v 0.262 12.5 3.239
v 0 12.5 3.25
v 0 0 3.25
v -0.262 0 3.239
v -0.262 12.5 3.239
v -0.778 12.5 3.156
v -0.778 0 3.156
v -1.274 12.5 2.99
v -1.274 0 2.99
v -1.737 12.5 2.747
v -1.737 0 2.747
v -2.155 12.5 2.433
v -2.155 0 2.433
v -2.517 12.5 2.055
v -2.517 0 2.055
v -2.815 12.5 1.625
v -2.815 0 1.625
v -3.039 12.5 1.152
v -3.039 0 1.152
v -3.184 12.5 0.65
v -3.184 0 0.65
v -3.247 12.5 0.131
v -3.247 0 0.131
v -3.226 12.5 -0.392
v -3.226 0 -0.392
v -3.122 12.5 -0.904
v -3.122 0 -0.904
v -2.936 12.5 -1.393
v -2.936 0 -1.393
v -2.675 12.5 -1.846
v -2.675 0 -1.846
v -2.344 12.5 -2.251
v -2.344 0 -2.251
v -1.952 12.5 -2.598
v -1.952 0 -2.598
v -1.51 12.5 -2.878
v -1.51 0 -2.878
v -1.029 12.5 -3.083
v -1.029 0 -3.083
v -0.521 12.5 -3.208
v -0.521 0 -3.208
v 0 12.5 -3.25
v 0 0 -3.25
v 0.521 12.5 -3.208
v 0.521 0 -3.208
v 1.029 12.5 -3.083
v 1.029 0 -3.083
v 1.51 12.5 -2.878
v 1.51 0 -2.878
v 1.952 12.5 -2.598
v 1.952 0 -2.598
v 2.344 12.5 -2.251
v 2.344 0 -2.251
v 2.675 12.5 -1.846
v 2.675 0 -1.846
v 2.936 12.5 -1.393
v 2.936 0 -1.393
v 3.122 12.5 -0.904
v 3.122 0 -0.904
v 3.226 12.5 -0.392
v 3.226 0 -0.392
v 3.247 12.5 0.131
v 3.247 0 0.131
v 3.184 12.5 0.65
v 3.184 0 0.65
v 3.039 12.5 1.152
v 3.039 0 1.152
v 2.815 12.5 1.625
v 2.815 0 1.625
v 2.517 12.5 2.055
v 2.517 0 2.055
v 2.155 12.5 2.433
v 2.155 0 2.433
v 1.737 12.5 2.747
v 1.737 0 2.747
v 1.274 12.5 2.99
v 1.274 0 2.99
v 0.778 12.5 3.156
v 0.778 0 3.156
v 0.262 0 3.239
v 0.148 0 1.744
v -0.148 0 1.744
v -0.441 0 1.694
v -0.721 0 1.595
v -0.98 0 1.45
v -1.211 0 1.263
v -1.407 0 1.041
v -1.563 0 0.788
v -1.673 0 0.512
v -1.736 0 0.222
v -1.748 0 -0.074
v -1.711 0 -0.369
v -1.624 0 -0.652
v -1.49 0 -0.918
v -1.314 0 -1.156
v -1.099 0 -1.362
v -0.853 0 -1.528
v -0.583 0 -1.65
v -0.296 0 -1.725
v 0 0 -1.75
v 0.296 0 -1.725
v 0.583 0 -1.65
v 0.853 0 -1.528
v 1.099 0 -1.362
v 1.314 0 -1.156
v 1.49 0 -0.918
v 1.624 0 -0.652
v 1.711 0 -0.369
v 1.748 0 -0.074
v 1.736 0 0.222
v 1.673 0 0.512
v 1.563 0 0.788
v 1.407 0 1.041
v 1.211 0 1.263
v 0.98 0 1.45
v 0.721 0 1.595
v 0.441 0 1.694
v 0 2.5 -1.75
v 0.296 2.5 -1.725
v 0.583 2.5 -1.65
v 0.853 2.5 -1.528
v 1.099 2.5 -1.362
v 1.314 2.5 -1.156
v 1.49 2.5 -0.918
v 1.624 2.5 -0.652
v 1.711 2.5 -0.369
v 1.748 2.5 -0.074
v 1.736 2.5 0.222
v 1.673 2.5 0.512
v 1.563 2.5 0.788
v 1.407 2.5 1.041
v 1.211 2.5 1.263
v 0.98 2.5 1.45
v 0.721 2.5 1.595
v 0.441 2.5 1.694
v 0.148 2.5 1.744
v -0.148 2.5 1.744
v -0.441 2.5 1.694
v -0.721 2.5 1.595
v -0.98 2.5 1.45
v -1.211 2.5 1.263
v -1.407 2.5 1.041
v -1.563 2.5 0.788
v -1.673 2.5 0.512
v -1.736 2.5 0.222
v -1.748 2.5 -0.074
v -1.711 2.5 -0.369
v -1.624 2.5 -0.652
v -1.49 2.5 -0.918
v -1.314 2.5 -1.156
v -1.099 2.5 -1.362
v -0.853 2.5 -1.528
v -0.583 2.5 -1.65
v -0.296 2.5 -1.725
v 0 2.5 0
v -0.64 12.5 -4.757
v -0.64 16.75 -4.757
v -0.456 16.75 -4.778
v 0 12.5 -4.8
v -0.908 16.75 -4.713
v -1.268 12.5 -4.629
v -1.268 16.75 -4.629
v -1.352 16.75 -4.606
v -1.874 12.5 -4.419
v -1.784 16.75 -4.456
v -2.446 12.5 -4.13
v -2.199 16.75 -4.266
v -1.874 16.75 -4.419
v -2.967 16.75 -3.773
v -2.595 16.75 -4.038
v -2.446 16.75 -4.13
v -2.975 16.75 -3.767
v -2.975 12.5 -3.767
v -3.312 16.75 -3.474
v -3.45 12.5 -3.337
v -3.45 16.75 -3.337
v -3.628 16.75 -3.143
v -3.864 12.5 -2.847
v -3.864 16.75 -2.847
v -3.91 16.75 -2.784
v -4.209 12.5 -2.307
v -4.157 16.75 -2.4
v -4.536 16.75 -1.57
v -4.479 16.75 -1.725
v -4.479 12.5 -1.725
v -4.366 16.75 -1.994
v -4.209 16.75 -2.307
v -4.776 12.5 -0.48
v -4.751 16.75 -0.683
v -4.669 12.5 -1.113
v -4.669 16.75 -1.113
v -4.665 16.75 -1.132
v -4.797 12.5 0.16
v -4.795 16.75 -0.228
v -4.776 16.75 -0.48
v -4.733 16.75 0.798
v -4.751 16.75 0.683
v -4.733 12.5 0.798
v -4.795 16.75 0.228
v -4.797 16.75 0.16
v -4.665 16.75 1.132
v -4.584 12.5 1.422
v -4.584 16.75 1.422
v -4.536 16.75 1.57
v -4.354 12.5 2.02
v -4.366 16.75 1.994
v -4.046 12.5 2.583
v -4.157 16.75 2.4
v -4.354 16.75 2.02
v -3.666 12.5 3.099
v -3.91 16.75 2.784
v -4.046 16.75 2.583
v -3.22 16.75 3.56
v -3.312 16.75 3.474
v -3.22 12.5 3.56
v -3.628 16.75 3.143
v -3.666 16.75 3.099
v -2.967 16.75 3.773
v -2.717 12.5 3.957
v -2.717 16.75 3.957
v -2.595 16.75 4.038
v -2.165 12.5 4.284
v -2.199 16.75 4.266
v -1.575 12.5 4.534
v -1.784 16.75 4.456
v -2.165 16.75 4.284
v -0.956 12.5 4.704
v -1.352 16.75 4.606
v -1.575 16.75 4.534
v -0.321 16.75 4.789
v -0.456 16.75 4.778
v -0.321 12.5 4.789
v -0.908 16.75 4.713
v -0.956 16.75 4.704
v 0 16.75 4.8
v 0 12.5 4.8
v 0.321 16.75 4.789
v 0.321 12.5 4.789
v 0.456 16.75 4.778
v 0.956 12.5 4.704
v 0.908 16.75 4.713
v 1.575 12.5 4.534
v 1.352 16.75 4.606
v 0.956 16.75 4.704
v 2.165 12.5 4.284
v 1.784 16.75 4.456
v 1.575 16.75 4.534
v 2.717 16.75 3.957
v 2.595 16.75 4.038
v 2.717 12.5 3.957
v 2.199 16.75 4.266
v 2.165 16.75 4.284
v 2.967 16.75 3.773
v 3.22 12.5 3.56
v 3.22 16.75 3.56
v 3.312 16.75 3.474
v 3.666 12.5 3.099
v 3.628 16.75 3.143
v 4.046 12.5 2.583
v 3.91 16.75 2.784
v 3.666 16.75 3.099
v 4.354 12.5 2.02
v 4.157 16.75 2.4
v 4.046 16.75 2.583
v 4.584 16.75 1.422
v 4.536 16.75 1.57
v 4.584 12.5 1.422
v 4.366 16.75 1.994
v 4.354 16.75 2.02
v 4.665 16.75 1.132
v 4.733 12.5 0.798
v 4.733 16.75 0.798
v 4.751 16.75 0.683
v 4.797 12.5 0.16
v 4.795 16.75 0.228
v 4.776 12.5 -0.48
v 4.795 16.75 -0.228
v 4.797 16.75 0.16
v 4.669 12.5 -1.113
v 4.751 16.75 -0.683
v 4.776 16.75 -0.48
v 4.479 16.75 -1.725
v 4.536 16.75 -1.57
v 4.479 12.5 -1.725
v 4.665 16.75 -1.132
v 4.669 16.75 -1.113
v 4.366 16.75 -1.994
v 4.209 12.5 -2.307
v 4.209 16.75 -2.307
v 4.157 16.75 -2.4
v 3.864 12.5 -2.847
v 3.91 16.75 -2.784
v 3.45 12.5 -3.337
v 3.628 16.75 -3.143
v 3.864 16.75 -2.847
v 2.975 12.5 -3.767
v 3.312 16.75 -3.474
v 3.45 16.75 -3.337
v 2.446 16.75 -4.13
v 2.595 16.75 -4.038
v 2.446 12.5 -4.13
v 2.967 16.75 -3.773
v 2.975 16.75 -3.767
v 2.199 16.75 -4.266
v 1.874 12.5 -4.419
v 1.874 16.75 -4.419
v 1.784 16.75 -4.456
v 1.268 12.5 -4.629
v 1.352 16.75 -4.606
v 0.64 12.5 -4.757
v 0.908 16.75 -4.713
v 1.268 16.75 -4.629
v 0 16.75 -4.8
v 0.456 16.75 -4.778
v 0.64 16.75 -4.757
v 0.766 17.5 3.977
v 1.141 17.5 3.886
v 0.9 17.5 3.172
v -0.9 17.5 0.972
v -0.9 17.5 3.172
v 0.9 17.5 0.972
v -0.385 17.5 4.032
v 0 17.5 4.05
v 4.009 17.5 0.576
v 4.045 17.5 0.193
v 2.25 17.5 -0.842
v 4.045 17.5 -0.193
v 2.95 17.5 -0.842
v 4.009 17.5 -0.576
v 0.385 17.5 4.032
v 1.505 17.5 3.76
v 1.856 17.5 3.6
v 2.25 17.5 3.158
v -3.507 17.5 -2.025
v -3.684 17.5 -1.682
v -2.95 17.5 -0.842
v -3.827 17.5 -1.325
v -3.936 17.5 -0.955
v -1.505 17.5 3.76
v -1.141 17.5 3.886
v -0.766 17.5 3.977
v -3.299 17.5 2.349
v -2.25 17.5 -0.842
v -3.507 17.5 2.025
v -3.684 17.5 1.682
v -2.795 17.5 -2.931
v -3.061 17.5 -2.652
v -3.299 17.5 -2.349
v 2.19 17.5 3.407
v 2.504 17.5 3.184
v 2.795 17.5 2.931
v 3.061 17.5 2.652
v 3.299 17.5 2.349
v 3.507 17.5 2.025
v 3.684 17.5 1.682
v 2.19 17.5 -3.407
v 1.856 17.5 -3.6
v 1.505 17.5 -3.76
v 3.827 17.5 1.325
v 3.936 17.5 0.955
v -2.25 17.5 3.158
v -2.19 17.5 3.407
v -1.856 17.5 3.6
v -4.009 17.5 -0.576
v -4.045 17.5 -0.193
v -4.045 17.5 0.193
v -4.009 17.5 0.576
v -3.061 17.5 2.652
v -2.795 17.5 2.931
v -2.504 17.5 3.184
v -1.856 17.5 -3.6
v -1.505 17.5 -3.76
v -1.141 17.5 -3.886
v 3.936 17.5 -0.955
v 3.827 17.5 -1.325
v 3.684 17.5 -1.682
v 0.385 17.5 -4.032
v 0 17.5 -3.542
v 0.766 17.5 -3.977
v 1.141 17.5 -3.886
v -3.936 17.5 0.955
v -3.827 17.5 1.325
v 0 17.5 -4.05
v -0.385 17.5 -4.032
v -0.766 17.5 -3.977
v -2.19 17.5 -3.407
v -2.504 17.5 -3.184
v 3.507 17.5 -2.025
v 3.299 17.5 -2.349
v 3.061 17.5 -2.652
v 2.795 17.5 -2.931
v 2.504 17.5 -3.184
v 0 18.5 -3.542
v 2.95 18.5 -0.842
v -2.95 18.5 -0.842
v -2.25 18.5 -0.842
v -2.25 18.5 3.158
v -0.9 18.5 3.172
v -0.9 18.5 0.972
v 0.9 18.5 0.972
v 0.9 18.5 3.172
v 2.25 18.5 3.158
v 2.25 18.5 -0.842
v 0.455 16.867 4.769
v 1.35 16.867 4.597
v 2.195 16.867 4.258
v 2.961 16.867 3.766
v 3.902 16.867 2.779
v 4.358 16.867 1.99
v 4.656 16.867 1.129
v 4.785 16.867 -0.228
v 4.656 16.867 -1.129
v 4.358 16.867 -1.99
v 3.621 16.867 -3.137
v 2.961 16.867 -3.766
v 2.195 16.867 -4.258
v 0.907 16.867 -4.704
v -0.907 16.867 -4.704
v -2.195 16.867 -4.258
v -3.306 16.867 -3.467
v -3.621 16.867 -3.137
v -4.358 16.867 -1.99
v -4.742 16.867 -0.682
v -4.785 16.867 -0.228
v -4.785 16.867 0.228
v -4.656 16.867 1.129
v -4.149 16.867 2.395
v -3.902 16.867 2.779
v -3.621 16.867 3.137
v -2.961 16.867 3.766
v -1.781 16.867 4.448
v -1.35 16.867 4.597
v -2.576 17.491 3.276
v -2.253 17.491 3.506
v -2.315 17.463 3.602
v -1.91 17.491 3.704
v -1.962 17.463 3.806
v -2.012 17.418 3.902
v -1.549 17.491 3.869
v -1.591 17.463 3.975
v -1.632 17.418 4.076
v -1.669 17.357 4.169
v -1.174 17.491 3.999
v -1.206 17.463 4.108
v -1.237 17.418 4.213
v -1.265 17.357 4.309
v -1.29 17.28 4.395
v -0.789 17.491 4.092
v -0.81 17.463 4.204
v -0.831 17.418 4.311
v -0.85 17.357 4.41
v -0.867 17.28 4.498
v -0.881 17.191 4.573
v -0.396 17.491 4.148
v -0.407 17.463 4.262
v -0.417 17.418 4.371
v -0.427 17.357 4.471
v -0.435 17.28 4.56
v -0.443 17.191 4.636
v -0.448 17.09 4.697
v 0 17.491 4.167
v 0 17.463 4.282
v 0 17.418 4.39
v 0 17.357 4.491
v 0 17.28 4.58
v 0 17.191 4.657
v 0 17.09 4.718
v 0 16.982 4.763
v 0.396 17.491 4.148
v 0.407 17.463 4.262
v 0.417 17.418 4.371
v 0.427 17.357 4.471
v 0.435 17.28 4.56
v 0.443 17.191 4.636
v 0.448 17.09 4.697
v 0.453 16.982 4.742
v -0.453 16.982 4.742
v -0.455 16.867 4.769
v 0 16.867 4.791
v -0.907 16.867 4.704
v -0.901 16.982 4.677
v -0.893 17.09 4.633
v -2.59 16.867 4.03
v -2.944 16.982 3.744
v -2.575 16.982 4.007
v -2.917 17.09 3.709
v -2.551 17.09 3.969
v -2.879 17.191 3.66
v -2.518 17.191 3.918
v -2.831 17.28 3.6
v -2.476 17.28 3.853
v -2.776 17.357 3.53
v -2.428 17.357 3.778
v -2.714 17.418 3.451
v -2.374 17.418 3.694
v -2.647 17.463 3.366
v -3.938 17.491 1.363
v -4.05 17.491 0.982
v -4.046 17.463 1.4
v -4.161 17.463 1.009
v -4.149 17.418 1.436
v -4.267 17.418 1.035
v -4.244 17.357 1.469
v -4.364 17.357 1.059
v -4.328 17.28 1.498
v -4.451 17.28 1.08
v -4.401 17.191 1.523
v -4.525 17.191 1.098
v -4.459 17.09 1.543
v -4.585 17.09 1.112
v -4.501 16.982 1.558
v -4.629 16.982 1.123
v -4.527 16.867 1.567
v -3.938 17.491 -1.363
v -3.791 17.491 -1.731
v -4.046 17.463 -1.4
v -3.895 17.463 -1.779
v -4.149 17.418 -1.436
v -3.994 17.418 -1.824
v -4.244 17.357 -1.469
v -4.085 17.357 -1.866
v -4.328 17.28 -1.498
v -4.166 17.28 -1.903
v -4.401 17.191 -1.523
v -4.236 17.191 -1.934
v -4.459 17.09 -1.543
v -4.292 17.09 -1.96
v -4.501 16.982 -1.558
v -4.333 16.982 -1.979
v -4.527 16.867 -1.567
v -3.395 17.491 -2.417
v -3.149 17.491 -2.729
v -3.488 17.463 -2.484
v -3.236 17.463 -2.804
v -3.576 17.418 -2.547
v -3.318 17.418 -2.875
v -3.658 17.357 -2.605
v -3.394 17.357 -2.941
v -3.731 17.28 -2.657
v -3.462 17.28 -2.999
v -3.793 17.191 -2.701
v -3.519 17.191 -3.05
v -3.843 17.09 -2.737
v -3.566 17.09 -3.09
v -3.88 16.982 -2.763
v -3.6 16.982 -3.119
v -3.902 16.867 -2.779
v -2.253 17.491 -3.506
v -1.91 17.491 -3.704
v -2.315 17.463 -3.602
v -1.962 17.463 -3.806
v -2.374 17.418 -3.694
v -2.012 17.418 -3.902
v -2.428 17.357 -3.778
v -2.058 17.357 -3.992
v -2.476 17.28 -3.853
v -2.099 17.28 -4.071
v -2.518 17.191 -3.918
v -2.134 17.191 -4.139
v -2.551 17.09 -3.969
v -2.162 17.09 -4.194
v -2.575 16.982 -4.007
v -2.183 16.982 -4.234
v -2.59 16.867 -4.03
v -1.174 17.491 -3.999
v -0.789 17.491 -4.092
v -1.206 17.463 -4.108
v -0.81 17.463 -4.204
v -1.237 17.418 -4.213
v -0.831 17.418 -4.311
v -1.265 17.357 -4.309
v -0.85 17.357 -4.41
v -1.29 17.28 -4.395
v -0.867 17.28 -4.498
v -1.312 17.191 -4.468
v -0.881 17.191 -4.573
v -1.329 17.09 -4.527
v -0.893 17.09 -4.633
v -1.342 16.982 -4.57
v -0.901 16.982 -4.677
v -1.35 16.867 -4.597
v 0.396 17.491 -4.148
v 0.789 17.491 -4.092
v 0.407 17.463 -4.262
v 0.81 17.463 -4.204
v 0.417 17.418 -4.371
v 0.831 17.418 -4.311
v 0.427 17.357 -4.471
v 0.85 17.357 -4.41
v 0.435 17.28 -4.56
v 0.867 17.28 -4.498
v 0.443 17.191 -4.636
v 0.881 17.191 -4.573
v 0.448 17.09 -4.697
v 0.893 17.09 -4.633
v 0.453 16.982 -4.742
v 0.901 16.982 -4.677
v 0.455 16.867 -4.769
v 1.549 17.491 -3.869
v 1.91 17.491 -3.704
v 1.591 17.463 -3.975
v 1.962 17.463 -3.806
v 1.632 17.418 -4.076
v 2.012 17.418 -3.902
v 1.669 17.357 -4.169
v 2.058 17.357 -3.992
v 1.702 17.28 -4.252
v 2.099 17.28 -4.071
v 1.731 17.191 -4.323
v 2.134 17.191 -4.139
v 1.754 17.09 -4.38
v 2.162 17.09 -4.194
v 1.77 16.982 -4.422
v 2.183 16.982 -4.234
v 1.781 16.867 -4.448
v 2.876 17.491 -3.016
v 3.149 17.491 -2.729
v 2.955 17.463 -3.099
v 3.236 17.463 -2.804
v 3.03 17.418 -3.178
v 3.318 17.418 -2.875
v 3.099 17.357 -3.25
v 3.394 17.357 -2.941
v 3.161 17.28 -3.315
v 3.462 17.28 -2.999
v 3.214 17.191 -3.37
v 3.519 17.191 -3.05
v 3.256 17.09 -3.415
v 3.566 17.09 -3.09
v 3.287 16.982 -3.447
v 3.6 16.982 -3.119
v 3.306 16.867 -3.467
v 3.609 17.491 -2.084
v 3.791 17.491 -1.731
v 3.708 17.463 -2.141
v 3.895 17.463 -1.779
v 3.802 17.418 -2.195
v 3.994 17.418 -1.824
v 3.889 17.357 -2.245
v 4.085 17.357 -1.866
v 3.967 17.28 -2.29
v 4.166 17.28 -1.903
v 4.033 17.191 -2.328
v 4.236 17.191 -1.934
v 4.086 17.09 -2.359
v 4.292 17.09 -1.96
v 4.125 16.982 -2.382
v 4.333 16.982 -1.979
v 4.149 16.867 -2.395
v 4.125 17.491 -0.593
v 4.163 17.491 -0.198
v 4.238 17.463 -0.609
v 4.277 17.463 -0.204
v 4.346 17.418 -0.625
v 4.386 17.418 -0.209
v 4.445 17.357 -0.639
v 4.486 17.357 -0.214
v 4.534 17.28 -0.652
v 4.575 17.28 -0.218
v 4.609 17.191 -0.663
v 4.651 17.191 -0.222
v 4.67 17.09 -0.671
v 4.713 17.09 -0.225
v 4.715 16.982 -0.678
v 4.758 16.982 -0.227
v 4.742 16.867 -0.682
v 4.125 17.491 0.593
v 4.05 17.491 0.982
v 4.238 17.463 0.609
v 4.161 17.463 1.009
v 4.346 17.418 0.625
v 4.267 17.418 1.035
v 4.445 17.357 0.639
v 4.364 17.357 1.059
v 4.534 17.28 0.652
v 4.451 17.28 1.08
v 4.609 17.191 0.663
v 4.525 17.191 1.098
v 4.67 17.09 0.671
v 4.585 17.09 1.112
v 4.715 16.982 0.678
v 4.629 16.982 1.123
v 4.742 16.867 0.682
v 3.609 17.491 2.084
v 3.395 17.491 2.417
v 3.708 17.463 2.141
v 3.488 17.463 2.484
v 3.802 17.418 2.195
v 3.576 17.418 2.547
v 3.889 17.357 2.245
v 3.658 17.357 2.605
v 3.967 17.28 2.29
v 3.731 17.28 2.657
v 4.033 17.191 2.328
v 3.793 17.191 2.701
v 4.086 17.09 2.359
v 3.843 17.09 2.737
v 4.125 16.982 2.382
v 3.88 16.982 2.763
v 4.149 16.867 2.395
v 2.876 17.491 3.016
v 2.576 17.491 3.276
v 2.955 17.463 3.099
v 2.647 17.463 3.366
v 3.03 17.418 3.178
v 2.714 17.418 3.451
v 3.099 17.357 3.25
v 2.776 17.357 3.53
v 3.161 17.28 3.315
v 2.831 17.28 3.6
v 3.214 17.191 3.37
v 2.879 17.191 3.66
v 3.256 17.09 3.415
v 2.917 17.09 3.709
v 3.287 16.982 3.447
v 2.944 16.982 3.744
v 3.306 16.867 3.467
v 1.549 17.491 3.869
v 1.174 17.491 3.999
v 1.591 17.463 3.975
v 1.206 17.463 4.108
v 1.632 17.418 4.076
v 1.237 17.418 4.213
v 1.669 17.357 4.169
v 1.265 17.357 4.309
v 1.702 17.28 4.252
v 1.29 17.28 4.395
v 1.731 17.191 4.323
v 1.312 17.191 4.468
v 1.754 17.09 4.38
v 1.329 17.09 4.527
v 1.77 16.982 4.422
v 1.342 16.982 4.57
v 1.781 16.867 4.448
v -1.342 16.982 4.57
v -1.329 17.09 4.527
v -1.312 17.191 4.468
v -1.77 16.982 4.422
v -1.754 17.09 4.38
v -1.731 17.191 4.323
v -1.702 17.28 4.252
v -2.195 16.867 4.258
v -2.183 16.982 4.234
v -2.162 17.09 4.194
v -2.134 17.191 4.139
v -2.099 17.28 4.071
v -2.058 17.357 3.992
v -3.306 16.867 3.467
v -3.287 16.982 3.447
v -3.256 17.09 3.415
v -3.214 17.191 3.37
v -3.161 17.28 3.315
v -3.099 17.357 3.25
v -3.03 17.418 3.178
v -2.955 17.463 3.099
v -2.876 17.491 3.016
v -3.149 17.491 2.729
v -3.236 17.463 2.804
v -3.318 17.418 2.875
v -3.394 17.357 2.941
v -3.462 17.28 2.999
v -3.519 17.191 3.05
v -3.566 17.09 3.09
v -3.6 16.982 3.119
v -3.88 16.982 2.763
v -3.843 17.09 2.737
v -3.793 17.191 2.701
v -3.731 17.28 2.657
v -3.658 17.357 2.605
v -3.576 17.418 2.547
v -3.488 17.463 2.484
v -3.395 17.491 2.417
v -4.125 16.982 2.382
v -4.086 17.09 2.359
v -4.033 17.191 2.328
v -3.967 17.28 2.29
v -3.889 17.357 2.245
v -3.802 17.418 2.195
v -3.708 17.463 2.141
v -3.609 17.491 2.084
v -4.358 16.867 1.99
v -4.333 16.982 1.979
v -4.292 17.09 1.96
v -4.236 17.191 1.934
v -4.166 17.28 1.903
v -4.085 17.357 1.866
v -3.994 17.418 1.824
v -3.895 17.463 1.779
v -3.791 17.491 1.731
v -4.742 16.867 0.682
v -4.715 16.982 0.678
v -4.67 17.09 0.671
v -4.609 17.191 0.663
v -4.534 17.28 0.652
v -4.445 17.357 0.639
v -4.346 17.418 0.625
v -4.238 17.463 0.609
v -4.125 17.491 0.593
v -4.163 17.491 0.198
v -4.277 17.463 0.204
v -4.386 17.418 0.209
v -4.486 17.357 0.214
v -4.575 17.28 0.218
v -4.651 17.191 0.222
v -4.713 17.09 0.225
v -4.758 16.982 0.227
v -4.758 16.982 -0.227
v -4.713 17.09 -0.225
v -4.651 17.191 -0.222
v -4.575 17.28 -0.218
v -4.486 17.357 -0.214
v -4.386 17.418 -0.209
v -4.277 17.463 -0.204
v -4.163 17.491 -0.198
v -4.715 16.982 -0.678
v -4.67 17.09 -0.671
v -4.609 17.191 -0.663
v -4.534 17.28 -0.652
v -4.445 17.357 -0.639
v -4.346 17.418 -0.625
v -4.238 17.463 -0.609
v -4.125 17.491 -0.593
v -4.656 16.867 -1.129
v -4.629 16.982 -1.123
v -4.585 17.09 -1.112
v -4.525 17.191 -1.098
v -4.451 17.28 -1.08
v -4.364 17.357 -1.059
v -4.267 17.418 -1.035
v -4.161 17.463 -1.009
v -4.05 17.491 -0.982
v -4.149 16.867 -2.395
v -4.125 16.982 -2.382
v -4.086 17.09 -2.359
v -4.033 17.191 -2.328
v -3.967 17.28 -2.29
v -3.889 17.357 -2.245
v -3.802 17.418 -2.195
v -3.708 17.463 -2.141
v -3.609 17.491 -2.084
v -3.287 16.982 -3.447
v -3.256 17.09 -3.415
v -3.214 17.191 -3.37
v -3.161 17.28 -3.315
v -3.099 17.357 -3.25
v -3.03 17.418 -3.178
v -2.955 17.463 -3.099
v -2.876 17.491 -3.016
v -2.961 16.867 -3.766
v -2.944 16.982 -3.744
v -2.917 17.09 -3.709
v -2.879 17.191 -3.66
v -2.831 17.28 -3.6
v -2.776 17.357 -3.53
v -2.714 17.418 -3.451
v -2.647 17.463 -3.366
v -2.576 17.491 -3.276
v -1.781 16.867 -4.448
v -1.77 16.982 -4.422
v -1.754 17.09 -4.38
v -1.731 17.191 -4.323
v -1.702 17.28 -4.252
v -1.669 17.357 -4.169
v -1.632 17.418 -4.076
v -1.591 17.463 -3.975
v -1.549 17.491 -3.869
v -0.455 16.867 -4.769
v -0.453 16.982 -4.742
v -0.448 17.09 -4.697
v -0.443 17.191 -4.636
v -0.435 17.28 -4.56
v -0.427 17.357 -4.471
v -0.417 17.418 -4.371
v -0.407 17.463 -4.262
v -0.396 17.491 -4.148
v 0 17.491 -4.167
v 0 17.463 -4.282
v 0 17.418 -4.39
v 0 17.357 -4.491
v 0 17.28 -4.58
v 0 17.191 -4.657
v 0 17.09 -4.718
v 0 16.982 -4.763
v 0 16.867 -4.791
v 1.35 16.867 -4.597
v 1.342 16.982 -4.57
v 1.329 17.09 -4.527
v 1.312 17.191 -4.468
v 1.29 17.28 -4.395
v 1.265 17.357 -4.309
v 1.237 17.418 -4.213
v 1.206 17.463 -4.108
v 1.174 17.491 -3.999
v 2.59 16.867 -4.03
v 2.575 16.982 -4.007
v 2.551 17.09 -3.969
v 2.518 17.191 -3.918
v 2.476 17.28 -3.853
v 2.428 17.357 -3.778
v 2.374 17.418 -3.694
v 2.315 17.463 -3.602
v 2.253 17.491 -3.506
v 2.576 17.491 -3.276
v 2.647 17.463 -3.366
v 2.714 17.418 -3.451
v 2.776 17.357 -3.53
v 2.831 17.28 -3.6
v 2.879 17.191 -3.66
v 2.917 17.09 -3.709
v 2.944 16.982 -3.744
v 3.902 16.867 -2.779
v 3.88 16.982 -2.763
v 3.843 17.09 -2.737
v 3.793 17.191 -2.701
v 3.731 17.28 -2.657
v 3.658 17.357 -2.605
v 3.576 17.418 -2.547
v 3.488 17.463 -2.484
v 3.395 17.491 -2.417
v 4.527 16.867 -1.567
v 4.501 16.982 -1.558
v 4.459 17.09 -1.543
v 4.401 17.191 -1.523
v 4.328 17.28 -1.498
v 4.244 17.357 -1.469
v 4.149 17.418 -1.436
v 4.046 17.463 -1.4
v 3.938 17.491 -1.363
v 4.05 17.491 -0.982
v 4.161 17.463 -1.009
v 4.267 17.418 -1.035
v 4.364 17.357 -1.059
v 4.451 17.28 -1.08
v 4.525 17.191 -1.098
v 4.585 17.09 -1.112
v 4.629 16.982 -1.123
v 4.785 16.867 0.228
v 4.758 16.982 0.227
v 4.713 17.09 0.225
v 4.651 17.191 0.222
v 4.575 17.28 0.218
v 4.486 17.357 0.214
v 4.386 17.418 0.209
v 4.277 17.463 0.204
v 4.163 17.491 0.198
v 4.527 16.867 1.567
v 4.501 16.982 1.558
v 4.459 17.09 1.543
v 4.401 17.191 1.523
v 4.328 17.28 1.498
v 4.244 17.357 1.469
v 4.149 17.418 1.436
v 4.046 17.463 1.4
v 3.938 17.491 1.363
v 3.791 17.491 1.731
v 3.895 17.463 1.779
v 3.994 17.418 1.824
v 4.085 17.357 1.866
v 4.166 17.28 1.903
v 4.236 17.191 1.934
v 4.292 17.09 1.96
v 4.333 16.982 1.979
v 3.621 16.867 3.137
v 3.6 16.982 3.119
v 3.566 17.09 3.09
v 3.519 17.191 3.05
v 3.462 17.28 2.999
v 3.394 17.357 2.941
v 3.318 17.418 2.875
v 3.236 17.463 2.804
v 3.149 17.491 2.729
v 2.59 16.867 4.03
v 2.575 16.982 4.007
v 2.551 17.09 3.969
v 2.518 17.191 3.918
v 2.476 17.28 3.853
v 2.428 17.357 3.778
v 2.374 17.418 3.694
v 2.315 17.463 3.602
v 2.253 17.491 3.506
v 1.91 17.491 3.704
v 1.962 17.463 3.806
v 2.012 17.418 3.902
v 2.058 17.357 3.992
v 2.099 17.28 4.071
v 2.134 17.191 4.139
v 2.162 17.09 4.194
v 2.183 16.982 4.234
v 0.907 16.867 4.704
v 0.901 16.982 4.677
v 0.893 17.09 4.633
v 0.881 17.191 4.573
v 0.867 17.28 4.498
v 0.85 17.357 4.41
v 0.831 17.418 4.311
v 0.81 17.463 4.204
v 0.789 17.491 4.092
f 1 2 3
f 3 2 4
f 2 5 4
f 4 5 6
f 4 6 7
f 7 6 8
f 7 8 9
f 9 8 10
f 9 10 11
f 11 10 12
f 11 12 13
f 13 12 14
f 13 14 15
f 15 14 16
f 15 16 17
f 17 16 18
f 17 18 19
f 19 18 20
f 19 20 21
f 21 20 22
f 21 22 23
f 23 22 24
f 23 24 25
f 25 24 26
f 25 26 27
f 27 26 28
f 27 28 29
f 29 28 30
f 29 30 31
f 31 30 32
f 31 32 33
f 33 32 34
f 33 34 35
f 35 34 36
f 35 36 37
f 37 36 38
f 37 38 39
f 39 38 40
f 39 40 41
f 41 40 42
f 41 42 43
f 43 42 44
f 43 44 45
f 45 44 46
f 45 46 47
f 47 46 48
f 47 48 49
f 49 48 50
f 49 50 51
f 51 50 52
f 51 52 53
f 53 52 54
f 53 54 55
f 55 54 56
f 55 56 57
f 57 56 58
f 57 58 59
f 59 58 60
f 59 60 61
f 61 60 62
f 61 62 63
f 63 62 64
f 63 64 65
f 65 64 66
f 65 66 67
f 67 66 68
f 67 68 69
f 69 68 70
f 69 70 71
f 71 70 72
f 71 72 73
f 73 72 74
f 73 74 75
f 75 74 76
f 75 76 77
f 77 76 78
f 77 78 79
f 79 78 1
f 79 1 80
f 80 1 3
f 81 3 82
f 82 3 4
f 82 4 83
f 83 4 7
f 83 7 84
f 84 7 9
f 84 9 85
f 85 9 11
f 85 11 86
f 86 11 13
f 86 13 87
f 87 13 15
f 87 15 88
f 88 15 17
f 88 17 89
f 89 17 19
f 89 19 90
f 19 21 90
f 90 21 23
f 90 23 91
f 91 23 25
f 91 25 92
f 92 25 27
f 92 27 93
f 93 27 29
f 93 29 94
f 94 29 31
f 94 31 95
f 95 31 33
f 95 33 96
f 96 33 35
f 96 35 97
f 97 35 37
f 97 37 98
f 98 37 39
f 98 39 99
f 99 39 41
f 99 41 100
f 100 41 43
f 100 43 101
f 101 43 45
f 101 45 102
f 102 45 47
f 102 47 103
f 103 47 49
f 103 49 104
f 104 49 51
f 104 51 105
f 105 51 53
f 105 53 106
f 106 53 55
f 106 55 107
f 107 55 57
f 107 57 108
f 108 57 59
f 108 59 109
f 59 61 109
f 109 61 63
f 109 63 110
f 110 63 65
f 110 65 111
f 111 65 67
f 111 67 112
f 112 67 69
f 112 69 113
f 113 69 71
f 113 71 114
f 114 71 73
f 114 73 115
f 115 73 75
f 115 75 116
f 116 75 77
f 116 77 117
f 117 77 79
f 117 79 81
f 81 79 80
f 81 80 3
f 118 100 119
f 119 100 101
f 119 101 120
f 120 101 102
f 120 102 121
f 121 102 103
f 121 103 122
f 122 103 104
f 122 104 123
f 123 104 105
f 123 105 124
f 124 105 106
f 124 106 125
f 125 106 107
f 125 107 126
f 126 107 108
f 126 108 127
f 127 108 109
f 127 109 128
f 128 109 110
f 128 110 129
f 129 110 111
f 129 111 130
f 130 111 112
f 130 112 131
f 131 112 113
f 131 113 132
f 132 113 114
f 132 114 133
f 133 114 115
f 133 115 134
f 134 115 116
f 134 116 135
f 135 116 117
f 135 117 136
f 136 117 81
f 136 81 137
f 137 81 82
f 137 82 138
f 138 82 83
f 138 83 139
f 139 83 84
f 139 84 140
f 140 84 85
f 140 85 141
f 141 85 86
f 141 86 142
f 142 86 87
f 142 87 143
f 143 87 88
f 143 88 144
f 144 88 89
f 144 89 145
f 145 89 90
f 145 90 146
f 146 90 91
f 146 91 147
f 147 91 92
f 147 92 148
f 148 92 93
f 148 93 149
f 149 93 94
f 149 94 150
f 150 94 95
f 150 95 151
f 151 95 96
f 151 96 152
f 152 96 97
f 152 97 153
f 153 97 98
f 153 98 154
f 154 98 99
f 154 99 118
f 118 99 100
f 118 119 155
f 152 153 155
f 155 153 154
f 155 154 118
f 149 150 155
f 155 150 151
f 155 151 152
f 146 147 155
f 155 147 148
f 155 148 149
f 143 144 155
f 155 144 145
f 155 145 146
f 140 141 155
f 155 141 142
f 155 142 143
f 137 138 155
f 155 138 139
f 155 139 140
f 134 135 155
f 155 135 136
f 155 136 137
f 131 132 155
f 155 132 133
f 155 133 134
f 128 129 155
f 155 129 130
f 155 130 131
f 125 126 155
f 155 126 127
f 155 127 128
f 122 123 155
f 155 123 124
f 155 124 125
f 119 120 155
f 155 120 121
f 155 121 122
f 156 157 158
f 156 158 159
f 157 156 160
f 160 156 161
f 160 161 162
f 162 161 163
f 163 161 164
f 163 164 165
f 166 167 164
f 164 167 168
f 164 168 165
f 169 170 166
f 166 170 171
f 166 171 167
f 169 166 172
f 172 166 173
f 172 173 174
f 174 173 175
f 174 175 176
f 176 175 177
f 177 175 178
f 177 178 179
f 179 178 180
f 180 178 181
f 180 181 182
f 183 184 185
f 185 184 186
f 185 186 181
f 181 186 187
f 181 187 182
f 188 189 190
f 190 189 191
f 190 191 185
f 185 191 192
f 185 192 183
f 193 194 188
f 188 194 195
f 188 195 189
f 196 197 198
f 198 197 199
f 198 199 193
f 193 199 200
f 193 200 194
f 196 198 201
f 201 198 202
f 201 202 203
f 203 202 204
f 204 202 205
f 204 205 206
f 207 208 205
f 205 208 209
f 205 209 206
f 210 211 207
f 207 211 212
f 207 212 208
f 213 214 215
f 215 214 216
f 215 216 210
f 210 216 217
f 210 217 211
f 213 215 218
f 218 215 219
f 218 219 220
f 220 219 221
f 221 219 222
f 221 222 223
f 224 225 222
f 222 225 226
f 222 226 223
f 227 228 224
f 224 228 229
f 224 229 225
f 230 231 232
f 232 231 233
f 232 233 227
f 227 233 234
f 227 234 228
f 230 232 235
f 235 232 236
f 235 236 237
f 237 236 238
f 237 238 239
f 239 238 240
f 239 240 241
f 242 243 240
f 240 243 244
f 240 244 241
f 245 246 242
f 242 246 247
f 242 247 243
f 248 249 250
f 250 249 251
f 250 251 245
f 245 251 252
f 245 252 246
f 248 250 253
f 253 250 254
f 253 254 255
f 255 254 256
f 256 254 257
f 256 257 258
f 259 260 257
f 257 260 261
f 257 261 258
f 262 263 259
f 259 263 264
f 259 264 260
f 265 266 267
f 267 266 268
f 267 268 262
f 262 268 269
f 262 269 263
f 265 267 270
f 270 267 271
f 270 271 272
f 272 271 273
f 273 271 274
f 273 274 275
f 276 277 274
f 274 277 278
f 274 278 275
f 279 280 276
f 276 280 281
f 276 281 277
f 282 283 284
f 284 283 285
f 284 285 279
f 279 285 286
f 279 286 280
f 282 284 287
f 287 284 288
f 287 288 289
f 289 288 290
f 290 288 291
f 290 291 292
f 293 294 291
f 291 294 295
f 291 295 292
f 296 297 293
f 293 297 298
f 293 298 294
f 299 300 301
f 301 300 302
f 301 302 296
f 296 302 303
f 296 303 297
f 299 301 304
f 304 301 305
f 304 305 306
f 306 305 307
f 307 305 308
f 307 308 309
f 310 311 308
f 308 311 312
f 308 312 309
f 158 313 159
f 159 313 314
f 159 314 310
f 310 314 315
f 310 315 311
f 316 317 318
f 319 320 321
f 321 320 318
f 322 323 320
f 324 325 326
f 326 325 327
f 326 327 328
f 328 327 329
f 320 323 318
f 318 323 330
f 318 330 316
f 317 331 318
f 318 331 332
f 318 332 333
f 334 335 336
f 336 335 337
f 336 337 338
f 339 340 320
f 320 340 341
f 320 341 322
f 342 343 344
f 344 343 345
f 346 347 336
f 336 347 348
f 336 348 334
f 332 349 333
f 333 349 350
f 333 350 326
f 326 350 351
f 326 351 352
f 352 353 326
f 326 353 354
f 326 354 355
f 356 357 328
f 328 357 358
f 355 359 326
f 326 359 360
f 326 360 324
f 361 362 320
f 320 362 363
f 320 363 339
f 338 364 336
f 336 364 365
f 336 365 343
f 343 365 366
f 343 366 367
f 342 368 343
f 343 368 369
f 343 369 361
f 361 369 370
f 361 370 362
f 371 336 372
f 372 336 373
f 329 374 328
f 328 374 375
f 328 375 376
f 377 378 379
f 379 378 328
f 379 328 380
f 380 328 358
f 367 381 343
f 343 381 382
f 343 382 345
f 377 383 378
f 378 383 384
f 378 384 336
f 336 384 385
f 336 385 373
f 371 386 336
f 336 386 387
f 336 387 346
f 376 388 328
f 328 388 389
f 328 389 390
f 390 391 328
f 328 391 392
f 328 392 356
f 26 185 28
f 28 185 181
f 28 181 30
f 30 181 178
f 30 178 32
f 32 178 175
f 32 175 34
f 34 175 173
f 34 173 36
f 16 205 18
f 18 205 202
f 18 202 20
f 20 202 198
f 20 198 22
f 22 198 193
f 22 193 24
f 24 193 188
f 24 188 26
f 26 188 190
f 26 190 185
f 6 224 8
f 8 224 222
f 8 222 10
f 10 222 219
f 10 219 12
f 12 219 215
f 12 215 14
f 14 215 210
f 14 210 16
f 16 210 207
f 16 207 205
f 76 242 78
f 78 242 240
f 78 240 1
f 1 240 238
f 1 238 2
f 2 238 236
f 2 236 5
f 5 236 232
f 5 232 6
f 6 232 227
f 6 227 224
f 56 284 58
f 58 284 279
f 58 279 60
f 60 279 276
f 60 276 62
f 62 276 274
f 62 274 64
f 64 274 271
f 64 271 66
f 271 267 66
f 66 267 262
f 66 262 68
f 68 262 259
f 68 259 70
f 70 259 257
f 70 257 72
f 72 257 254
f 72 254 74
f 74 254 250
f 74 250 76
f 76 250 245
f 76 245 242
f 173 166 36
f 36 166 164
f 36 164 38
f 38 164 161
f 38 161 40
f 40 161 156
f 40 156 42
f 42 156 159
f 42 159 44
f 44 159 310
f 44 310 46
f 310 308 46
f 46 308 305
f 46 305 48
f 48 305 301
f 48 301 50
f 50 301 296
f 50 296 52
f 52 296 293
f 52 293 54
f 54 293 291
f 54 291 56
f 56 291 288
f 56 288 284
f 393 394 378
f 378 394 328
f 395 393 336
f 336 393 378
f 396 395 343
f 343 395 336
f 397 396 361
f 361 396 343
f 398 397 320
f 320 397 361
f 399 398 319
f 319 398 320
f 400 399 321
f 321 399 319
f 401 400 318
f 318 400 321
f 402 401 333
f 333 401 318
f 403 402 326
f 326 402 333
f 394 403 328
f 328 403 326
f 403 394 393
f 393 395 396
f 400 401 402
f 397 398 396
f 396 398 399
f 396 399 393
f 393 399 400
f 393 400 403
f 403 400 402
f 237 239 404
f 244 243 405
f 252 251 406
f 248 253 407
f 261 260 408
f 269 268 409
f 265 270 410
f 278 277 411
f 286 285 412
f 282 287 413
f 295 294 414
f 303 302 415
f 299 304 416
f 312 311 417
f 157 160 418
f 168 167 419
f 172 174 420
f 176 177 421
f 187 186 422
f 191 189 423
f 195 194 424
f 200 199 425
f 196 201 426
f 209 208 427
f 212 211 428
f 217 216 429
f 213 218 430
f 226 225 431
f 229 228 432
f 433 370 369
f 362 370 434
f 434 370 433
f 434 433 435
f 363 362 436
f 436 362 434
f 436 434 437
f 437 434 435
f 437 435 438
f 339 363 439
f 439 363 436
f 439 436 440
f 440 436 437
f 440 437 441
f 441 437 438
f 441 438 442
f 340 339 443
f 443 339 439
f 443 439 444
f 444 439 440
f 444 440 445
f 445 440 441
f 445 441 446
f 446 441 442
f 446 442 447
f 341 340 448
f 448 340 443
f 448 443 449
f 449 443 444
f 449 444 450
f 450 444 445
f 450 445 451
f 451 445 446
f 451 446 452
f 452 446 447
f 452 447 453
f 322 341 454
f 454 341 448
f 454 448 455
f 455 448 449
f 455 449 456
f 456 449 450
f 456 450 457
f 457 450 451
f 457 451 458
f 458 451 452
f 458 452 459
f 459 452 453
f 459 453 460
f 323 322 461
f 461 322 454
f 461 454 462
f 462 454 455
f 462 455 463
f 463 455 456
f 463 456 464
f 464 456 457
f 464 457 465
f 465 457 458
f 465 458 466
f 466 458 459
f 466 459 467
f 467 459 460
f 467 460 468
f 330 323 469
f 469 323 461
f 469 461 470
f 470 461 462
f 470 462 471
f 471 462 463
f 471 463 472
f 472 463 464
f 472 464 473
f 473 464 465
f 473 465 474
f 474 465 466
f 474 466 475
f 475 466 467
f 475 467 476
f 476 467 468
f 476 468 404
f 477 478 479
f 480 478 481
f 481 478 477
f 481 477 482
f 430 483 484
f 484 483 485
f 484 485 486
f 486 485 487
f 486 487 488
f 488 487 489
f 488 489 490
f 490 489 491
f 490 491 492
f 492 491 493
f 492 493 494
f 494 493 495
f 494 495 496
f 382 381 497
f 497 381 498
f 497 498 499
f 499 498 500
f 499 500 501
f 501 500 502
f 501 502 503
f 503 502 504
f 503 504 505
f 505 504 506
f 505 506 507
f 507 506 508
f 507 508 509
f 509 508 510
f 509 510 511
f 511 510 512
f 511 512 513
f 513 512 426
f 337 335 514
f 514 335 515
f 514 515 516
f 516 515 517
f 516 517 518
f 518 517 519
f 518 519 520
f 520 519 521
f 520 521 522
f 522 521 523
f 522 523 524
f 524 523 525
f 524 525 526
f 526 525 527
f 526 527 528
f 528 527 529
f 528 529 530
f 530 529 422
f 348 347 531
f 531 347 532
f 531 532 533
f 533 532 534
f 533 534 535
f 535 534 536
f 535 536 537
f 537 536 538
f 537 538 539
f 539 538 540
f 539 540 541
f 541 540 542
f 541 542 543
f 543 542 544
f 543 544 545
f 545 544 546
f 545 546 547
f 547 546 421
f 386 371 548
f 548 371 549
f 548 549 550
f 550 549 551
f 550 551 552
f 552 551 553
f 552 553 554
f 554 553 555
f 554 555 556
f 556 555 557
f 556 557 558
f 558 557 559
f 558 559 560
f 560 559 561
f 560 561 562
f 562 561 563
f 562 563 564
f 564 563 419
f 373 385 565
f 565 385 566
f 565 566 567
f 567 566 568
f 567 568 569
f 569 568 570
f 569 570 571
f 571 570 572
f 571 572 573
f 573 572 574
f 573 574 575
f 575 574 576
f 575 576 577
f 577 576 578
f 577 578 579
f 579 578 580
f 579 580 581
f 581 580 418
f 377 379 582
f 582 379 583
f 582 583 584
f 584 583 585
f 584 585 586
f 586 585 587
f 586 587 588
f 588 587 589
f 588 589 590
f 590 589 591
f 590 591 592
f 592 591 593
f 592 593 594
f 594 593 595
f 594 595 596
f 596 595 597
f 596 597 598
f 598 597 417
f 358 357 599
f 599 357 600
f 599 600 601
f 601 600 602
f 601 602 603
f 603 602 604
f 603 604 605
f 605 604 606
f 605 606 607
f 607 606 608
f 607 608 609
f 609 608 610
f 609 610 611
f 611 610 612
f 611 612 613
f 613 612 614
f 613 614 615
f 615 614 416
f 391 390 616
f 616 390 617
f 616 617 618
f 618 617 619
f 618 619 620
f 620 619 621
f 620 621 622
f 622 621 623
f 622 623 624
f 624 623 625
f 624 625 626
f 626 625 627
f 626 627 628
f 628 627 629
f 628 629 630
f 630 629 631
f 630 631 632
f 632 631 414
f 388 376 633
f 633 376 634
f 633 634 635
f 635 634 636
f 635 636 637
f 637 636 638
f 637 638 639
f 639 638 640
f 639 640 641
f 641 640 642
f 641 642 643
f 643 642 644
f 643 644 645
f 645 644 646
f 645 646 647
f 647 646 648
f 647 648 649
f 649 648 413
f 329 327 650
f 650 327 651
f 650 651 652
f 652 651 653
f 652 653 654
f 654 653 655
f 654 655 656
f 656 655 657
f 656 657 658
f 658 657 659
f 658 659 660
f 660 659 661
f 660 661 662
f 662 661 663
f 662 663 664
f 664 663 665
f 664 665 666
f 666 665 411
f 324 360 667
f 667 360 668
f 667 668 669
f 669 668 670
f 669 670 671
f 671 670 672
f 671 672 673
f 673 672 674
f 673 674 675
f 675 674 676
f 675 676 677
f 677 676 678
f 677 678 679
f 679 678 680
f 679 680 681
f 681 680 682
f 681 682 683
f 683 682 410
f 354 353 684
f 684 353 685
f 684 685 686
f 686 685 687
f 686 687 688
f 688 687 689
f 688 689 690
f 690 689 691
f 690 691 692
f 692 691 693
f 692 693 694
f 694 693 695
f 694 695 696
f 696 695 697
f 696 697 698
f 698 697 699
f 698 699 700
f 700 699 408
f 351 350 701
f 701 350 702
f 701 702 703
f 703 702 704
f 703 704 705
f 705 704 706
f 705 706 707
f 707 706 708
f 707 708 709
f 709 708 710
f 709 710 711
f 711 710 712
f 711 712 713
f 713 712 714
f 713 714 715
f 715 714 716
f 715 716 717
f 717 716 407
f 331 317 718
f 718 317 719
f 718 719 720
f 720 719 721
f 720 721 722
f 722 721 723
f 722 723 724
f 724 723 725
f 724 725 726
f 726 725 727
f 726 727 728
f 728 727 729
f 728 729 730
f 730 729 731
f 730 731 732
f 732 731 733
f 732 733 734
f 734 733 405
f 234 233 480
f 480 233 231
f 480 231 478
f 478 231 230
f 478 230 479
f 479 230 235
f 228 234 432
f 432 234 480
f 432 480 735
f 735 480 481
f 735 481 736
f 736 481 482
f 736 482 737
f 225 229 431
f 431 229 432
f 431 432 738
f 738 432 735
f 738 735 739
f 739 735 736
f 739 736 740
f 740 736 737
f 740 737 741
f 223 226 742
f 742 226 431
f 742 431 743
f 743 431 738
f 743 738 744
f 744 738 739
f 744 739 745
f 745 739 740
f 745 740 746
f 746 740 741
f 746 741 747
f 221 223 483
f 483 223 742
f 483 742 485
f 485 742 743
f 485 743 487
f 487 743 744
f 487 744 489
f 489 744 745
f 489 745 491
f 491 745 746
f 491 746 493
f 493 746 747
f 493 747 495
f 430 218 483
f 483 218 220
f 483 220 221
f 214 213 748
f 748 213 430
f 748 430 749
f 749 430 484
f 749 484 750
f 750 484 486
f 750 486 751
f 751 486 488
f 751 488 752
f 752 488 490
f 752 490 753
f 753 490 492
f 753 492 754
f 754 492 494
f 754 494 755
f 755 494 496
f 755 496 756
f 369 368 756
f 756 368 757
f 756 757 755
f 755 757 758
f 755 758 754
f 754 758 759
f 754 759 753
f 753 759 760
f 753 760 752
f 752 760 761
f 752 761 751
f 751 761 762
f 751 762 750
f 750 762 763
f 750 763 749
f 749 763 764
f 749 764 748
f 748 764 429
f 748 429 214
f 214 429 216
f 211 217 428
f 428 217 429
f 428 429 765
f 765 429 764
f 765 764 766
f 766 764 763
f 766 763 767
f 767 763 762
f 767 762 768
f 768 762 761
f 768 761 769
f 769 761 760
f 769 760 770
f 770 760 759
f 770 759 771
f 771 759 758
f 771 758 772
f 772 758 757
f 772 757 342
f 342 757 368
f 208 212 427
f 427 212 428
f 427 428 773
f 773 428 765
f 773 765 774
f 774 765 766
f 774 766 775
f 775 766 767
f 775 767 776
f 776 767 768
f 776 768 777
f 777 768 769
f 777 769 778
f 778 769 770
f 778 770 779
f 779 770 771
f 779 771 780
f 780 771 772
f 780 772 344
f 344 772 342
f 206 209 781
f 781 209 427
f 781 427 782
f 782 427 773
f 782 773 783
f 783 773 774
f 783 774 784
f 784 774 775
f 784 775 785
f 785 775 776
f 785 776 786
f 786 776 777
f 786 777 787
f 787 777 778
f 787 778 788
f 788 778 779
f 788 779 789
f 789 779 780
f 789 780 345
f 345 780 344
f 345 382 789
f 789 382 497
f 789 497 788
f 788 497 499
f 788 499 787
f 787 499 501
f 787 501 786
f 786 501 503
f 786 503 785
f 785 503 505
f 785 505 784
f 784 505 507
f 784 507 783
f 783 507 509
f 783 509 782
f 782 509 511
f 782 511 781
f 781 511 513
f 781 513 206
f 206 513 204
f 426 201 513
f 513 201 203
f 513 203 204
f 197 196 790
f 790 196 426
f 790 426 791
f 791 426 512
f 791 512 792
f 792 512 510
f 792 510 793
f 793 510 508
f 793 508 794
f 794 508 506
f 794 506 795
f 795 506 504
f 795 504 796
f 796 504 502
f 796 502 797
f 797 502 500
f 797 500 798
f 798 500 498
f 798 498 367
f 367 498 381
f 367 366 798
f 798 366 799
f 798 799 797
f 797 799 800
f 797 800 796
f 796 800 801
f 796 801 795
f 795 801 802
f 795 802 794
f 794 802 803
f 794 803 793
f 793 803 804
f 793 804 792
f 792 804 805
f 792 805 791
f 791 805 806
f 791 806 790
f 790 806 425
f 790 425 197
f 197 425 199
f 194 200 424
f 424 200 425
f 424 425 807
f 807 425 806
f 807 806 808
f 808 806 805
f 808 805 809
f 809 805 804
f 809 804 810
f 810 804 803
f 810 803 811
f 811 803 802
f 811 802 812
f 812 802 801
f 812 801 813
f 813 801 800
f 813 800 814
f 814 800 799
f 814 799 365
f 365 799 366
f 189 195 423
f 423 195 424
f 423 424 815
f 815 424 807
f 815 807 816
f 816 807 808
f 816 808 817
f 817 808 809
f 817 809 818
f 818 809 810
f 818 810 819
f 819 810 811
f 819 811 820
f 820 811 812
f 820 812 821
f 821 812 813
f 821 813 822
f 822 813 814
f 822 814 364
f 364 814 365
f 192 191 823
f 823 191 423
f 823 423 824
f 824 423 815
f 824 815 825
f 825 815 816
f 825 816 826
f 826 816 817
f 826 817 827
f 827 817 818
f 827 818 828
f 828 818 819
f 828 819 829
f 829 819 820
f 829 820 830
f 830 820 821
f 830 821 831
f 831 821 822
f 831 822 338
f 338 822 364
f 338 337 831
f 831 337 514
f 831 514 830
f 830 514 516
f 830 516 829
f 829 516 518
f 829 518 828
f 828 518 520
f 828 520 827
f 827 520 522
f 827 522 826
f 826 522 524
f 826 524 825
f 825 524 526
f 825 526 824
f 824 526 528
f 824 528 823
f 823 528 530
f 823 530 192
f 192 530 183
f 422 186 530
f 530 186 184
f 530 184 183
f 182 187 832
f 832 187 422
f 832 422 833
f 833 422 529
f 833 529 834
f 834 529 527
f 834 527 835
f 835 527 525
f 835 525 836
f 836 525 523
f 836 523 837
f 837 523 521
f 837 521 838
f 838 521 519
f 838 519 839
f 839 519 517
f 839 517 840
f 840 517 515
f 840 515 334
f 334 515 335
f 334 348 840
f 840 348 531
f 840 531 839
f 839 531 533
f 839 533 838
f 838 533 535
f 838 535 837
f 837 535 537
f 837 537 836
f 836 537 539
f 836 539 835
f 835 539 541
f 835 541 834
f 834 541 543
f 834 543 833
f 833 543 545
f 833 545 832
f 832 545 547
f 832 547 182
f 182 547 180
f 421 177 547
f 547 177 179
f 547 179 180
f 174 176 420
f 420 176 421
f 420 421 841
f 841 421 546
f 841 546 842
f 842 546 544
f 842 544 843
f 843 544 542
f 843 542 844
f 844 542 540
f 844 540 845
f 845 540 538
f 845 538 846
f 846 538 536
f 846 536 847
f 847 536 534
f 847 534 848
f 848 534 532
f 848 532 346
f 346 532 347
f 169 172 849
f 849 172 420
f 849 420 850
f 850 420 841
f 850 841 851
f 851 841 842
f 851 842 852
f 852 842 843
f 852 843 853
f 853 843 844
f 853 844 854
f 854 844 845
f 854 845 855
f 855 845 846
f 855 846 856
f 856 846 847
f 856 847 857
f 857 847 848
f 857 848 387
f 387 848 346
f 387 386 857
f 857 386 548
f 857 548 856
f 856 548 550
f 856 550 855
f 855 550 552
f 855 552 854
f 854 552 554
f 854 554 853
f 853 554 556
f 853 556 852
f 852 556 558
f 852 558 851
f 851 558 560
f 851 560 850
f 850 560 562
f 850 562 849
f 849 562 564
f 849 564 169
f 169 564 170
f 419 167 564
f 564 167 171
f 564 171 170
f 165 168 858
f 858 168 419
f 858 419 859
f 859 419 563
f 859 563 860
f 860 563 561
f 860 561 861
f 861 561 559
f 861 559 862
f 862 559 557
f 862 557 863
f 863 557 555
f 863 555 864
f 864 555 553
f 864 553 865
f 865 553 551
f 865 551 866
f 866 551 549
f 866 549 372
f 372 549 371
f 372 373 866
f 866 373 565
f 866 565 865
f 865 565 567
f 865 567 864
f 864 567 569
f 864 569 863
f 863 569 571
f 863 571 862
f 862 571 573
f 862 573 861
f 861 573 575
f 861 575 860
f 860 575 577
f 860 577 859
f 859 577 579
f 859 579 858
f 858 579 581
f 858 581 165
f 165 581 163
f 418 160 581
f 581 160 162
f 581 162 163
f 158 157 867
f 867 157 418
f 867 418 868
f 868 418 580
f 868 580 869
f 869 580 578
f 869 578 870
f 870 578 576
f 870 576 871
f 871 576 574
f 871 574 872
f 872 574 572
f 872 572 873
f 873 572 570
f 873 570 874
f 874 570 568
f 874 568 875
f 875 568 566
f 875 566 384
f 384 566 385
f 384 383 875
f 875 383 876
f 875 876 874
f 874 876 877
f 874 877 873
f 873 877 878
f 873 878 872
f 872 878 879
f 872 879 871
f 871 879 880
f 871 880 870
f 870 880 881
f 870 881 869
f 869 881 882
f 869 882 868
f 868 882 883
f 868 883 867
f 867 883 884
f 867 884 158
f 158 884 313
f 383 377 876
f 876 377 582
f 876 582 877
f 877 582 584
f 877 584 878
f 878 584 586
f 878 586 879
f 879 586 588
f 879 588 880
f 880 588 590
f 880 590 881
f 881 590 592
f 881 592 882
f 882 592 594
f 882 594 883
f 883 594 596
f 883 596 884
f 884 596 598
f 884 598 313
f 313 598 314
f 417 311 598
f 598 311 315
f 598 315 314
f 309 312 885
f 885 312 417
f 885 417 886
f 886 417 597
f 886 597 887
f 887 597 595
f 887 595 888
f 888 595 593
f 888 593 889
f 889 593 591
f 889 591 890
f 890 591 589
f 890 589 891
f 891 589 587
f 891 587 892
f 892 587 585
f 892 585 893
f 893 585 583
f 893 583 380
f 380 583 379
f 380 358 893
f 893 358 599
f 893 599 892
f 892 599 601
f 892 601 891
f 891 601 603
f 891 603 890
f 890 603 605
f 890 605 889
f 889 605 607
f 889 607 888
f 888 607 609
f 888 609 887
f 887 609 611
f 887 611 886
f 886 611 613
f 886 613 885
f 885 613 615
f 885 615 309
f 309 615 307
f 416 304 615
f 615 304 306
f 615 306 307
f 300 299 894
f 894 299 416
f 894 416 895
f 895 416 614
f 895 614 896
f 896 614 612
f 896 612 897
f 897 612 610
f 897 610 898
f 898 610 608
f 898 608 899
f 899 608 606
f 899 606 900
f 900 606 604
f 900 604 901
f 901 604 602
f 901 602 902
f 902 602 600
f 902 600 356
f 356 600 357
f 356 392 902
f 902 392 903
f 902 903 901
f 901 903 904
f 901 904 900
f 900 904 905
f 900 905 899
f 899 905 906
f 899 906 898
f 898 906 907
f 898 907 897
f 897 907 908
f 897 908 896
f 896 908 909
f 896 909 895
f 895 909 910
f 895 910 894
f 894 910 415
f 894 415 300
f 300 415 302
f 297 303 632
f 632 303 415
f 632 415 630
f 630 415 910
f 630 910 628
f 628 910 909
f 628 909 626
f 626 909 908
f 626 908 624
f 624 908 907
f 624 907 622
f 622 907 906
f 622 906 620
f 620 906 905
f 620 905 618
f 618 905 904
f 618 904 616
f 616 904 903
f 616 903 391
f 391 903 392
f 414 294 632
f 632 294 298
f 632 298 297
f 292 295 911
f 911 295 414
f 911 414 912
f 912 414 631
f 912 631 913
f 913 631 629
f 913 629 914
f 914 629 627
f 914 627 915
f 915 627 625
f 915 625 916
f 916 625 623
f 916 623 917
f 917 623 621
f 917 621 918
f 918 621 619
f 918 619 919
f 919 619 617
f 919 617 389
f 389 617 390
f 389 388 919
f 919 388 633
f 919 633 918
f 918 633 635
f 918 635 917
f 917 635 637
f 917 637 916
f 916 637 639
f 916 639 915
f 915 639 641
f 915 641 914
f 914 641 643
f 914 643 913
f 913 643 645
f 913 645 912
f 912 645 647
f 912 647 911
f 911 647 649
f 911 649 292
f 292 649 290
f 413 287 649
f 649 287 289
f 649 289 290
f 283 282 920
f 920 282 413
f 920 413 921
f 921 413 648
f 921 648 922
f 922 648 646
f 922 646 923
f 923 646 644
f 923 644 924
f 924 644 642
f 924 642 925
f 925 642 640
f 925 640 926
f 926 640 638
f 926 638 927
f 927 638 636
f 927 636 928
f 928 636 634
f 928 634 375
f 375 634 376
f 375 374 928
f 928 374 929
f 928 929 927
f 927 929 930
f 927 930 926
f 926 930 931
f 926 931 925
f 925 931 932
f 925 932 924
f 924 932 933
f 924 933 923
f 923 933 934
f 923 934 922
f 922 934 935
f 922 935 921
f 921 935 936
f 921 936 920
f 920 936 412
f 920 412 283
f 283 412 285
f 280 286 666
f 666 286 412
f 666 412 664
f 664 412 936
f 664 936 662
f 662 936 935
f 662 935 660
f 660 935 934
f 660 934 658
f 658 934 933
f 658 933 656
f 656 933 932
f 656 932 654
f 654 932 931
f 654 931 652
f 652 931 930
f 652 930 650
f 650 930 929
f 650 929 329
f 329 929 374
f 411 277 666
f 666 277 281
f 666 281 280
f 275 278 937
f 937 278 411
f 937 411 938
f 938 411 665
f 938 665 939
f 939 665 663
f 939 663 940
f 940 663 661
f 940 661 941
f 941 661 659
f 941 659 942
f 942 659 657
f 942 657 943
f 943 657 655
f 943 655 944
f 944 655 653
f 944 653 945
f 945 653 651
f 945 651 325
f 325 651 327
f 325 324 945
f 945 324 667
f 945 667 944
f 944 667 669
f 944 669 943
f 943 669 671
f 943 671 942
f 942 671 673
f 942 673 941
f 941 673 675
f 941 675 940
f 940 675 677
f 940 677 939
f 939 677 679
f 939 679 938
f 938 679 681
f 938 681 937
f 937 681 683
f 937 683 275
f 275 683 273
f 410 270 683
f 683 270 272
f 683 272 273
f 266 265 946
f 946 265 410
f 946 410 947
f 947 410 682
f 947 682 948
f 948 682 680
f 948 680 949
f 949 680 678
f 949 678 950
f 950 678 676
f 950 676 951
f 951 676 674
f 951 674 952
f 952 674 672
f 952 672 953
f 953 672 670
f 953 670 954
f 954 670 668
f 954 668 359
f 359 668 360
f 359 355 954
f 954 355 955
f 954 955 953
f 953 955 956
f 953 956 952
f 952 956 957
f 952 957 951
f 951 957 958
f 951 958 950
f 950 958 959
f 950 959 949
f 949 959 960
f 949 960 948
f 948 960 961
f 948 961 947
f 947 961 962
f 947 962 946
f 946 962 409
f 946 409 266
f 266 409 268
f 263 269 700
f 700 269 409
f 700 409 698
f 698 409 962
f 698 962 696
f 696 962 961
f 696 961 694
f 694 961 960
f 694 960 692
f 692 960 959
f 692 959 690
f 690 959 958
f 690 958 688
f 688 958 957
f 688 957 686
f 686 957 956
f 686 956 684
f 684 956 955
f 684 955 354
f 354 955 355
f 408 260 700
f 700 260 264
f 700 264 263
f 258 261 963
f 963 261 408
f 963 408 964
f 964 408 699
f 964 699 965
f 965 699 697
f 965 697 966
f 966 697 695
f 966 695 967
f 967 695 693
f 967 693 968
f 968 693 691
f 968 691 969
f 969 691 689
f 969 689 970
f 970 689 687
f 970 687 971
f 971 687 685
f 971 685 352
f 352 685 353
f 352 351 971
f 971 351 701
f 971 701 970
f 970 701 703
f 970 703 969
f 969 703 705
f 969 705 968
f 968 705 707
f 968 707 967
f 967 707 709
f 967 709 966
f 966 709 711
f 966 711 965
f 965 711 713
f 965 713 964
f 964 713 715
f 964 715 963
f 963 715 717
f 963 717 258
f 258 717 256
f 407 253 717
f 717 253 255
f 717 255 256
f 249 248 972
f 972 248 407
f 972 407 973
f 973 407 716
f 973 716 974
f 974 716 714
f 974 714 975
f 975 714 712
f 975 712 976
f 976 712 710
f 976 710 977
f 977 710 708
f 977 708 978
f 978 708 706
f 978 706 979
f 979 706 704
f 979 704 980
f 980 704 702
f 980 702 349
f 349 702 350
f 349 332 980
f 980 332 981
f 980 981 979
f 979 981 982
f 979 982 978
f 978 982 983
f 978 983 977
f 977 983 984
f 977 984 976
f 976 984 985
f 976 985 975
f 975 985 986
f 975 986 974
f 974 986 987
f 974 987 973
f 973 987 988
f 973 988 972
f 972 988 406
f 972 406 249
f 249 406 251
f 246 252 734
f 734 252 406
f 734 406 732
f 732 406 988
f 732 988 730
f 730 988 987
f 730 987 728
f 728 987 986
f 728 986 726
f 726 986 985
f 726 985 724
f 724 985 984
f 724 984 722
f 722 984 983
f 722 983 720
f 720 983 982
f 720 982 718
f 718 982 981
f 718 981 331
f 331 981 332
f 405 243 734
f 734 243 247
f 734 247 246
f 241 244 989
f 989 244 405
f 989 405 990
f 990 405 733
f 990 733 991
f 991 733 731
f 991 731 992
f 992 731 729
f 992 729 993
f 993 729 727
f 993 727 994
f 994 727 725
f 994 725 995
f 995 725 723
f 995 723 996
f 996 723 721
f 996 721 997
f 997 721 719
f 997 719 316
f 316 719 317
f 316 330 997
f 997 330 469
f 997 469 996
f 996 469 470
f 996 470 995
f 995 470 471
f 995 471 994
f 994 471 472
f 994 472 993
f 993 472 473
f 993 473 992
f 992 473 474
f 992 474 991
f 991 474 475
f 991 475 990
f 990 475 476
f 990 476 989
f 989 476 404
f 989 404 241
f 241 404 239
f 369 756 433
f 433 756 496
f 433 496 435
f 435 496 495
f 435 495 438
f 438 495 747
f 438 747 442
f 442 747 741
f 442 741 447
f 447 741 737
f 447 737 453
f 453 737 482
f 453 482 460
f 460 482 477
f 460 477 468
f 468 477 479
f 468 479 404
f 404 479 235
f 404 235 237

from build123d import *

# Parameters (mm, degrees)
SKETCH1_R           = 3.25
BOSS_EXTRUDE1_DEPTH = 12.5
SKETCH2_R           = 1.75
CUT_EXTRUDE1_DEPTH  = 2.5
SKETCH6_R           = 4.8
BOSS_EXTRUDE2_DEPTH = 5
BOSS_EXTRUDE3_DEPTH = 1
FILLET1_R           = 0.75


with BuildPart() as part:
    # Sketch1 → Boss-Extrude1 (new body)
    with BuildSketch(Plane(origin=(0, 0, 0), x_dir=(1, 0, 0), z_dir=(0, 1, 0))):
        Circle(SKETCH1_R)
    extrude(amount=BOSS_EXTRUDE1_DEPTH)

    # Sketch2 → Cut-Extrude1 (cut)
    with BuildSketch(Plane.XZ):
        Circle(SKETCH2_R)
    extrude(amount=-CUT_EXTRUDE1_DEPTH, mode=Mode.SUBTRACT)

    # Sketch6 → Boss-Extrude2 (add)
    with BuildSketch(Plane(origin=(0, 12.5, 0), x_dir=(1, 0, 0), z_dir=(0, 1, 0))):
        Circle(SKETCH6_R)
    extrude(amount=BOSS_EXTRUDE2_DEPTH)

    # Sketch12 → Boss-Extrude3 (add)
    with BuildSketch(Plane(origin=(0, 17.5, 0), x_dir=(1, 0, 0), z_dir=(0, 1, 0))):
        Polygon((0, 3.542487974), (-2.95, 0.842487974), (-2.25, 0.842487974), (-2.25, -3.157512026), (-0.9, -3.172366953), (-0.9, -0.972366953), (0.9, -0.972366953), (0.9, -3.172366953), (2.25, -3.157512026), (2.25, 0.842487974), (2.95, 0.842487974), align=None)
    extrude(amount=BOSS_EXTRUDE3_DEPTH)

    # Fillet1
    fillet1_edges = [part.edges().sort_by_distance(p)[0] for p in [
        (-4.8, 17.5, 0),
    ]]
    fillet(fillet1_edges, radius=FILLET1_R)


solid = part.part
